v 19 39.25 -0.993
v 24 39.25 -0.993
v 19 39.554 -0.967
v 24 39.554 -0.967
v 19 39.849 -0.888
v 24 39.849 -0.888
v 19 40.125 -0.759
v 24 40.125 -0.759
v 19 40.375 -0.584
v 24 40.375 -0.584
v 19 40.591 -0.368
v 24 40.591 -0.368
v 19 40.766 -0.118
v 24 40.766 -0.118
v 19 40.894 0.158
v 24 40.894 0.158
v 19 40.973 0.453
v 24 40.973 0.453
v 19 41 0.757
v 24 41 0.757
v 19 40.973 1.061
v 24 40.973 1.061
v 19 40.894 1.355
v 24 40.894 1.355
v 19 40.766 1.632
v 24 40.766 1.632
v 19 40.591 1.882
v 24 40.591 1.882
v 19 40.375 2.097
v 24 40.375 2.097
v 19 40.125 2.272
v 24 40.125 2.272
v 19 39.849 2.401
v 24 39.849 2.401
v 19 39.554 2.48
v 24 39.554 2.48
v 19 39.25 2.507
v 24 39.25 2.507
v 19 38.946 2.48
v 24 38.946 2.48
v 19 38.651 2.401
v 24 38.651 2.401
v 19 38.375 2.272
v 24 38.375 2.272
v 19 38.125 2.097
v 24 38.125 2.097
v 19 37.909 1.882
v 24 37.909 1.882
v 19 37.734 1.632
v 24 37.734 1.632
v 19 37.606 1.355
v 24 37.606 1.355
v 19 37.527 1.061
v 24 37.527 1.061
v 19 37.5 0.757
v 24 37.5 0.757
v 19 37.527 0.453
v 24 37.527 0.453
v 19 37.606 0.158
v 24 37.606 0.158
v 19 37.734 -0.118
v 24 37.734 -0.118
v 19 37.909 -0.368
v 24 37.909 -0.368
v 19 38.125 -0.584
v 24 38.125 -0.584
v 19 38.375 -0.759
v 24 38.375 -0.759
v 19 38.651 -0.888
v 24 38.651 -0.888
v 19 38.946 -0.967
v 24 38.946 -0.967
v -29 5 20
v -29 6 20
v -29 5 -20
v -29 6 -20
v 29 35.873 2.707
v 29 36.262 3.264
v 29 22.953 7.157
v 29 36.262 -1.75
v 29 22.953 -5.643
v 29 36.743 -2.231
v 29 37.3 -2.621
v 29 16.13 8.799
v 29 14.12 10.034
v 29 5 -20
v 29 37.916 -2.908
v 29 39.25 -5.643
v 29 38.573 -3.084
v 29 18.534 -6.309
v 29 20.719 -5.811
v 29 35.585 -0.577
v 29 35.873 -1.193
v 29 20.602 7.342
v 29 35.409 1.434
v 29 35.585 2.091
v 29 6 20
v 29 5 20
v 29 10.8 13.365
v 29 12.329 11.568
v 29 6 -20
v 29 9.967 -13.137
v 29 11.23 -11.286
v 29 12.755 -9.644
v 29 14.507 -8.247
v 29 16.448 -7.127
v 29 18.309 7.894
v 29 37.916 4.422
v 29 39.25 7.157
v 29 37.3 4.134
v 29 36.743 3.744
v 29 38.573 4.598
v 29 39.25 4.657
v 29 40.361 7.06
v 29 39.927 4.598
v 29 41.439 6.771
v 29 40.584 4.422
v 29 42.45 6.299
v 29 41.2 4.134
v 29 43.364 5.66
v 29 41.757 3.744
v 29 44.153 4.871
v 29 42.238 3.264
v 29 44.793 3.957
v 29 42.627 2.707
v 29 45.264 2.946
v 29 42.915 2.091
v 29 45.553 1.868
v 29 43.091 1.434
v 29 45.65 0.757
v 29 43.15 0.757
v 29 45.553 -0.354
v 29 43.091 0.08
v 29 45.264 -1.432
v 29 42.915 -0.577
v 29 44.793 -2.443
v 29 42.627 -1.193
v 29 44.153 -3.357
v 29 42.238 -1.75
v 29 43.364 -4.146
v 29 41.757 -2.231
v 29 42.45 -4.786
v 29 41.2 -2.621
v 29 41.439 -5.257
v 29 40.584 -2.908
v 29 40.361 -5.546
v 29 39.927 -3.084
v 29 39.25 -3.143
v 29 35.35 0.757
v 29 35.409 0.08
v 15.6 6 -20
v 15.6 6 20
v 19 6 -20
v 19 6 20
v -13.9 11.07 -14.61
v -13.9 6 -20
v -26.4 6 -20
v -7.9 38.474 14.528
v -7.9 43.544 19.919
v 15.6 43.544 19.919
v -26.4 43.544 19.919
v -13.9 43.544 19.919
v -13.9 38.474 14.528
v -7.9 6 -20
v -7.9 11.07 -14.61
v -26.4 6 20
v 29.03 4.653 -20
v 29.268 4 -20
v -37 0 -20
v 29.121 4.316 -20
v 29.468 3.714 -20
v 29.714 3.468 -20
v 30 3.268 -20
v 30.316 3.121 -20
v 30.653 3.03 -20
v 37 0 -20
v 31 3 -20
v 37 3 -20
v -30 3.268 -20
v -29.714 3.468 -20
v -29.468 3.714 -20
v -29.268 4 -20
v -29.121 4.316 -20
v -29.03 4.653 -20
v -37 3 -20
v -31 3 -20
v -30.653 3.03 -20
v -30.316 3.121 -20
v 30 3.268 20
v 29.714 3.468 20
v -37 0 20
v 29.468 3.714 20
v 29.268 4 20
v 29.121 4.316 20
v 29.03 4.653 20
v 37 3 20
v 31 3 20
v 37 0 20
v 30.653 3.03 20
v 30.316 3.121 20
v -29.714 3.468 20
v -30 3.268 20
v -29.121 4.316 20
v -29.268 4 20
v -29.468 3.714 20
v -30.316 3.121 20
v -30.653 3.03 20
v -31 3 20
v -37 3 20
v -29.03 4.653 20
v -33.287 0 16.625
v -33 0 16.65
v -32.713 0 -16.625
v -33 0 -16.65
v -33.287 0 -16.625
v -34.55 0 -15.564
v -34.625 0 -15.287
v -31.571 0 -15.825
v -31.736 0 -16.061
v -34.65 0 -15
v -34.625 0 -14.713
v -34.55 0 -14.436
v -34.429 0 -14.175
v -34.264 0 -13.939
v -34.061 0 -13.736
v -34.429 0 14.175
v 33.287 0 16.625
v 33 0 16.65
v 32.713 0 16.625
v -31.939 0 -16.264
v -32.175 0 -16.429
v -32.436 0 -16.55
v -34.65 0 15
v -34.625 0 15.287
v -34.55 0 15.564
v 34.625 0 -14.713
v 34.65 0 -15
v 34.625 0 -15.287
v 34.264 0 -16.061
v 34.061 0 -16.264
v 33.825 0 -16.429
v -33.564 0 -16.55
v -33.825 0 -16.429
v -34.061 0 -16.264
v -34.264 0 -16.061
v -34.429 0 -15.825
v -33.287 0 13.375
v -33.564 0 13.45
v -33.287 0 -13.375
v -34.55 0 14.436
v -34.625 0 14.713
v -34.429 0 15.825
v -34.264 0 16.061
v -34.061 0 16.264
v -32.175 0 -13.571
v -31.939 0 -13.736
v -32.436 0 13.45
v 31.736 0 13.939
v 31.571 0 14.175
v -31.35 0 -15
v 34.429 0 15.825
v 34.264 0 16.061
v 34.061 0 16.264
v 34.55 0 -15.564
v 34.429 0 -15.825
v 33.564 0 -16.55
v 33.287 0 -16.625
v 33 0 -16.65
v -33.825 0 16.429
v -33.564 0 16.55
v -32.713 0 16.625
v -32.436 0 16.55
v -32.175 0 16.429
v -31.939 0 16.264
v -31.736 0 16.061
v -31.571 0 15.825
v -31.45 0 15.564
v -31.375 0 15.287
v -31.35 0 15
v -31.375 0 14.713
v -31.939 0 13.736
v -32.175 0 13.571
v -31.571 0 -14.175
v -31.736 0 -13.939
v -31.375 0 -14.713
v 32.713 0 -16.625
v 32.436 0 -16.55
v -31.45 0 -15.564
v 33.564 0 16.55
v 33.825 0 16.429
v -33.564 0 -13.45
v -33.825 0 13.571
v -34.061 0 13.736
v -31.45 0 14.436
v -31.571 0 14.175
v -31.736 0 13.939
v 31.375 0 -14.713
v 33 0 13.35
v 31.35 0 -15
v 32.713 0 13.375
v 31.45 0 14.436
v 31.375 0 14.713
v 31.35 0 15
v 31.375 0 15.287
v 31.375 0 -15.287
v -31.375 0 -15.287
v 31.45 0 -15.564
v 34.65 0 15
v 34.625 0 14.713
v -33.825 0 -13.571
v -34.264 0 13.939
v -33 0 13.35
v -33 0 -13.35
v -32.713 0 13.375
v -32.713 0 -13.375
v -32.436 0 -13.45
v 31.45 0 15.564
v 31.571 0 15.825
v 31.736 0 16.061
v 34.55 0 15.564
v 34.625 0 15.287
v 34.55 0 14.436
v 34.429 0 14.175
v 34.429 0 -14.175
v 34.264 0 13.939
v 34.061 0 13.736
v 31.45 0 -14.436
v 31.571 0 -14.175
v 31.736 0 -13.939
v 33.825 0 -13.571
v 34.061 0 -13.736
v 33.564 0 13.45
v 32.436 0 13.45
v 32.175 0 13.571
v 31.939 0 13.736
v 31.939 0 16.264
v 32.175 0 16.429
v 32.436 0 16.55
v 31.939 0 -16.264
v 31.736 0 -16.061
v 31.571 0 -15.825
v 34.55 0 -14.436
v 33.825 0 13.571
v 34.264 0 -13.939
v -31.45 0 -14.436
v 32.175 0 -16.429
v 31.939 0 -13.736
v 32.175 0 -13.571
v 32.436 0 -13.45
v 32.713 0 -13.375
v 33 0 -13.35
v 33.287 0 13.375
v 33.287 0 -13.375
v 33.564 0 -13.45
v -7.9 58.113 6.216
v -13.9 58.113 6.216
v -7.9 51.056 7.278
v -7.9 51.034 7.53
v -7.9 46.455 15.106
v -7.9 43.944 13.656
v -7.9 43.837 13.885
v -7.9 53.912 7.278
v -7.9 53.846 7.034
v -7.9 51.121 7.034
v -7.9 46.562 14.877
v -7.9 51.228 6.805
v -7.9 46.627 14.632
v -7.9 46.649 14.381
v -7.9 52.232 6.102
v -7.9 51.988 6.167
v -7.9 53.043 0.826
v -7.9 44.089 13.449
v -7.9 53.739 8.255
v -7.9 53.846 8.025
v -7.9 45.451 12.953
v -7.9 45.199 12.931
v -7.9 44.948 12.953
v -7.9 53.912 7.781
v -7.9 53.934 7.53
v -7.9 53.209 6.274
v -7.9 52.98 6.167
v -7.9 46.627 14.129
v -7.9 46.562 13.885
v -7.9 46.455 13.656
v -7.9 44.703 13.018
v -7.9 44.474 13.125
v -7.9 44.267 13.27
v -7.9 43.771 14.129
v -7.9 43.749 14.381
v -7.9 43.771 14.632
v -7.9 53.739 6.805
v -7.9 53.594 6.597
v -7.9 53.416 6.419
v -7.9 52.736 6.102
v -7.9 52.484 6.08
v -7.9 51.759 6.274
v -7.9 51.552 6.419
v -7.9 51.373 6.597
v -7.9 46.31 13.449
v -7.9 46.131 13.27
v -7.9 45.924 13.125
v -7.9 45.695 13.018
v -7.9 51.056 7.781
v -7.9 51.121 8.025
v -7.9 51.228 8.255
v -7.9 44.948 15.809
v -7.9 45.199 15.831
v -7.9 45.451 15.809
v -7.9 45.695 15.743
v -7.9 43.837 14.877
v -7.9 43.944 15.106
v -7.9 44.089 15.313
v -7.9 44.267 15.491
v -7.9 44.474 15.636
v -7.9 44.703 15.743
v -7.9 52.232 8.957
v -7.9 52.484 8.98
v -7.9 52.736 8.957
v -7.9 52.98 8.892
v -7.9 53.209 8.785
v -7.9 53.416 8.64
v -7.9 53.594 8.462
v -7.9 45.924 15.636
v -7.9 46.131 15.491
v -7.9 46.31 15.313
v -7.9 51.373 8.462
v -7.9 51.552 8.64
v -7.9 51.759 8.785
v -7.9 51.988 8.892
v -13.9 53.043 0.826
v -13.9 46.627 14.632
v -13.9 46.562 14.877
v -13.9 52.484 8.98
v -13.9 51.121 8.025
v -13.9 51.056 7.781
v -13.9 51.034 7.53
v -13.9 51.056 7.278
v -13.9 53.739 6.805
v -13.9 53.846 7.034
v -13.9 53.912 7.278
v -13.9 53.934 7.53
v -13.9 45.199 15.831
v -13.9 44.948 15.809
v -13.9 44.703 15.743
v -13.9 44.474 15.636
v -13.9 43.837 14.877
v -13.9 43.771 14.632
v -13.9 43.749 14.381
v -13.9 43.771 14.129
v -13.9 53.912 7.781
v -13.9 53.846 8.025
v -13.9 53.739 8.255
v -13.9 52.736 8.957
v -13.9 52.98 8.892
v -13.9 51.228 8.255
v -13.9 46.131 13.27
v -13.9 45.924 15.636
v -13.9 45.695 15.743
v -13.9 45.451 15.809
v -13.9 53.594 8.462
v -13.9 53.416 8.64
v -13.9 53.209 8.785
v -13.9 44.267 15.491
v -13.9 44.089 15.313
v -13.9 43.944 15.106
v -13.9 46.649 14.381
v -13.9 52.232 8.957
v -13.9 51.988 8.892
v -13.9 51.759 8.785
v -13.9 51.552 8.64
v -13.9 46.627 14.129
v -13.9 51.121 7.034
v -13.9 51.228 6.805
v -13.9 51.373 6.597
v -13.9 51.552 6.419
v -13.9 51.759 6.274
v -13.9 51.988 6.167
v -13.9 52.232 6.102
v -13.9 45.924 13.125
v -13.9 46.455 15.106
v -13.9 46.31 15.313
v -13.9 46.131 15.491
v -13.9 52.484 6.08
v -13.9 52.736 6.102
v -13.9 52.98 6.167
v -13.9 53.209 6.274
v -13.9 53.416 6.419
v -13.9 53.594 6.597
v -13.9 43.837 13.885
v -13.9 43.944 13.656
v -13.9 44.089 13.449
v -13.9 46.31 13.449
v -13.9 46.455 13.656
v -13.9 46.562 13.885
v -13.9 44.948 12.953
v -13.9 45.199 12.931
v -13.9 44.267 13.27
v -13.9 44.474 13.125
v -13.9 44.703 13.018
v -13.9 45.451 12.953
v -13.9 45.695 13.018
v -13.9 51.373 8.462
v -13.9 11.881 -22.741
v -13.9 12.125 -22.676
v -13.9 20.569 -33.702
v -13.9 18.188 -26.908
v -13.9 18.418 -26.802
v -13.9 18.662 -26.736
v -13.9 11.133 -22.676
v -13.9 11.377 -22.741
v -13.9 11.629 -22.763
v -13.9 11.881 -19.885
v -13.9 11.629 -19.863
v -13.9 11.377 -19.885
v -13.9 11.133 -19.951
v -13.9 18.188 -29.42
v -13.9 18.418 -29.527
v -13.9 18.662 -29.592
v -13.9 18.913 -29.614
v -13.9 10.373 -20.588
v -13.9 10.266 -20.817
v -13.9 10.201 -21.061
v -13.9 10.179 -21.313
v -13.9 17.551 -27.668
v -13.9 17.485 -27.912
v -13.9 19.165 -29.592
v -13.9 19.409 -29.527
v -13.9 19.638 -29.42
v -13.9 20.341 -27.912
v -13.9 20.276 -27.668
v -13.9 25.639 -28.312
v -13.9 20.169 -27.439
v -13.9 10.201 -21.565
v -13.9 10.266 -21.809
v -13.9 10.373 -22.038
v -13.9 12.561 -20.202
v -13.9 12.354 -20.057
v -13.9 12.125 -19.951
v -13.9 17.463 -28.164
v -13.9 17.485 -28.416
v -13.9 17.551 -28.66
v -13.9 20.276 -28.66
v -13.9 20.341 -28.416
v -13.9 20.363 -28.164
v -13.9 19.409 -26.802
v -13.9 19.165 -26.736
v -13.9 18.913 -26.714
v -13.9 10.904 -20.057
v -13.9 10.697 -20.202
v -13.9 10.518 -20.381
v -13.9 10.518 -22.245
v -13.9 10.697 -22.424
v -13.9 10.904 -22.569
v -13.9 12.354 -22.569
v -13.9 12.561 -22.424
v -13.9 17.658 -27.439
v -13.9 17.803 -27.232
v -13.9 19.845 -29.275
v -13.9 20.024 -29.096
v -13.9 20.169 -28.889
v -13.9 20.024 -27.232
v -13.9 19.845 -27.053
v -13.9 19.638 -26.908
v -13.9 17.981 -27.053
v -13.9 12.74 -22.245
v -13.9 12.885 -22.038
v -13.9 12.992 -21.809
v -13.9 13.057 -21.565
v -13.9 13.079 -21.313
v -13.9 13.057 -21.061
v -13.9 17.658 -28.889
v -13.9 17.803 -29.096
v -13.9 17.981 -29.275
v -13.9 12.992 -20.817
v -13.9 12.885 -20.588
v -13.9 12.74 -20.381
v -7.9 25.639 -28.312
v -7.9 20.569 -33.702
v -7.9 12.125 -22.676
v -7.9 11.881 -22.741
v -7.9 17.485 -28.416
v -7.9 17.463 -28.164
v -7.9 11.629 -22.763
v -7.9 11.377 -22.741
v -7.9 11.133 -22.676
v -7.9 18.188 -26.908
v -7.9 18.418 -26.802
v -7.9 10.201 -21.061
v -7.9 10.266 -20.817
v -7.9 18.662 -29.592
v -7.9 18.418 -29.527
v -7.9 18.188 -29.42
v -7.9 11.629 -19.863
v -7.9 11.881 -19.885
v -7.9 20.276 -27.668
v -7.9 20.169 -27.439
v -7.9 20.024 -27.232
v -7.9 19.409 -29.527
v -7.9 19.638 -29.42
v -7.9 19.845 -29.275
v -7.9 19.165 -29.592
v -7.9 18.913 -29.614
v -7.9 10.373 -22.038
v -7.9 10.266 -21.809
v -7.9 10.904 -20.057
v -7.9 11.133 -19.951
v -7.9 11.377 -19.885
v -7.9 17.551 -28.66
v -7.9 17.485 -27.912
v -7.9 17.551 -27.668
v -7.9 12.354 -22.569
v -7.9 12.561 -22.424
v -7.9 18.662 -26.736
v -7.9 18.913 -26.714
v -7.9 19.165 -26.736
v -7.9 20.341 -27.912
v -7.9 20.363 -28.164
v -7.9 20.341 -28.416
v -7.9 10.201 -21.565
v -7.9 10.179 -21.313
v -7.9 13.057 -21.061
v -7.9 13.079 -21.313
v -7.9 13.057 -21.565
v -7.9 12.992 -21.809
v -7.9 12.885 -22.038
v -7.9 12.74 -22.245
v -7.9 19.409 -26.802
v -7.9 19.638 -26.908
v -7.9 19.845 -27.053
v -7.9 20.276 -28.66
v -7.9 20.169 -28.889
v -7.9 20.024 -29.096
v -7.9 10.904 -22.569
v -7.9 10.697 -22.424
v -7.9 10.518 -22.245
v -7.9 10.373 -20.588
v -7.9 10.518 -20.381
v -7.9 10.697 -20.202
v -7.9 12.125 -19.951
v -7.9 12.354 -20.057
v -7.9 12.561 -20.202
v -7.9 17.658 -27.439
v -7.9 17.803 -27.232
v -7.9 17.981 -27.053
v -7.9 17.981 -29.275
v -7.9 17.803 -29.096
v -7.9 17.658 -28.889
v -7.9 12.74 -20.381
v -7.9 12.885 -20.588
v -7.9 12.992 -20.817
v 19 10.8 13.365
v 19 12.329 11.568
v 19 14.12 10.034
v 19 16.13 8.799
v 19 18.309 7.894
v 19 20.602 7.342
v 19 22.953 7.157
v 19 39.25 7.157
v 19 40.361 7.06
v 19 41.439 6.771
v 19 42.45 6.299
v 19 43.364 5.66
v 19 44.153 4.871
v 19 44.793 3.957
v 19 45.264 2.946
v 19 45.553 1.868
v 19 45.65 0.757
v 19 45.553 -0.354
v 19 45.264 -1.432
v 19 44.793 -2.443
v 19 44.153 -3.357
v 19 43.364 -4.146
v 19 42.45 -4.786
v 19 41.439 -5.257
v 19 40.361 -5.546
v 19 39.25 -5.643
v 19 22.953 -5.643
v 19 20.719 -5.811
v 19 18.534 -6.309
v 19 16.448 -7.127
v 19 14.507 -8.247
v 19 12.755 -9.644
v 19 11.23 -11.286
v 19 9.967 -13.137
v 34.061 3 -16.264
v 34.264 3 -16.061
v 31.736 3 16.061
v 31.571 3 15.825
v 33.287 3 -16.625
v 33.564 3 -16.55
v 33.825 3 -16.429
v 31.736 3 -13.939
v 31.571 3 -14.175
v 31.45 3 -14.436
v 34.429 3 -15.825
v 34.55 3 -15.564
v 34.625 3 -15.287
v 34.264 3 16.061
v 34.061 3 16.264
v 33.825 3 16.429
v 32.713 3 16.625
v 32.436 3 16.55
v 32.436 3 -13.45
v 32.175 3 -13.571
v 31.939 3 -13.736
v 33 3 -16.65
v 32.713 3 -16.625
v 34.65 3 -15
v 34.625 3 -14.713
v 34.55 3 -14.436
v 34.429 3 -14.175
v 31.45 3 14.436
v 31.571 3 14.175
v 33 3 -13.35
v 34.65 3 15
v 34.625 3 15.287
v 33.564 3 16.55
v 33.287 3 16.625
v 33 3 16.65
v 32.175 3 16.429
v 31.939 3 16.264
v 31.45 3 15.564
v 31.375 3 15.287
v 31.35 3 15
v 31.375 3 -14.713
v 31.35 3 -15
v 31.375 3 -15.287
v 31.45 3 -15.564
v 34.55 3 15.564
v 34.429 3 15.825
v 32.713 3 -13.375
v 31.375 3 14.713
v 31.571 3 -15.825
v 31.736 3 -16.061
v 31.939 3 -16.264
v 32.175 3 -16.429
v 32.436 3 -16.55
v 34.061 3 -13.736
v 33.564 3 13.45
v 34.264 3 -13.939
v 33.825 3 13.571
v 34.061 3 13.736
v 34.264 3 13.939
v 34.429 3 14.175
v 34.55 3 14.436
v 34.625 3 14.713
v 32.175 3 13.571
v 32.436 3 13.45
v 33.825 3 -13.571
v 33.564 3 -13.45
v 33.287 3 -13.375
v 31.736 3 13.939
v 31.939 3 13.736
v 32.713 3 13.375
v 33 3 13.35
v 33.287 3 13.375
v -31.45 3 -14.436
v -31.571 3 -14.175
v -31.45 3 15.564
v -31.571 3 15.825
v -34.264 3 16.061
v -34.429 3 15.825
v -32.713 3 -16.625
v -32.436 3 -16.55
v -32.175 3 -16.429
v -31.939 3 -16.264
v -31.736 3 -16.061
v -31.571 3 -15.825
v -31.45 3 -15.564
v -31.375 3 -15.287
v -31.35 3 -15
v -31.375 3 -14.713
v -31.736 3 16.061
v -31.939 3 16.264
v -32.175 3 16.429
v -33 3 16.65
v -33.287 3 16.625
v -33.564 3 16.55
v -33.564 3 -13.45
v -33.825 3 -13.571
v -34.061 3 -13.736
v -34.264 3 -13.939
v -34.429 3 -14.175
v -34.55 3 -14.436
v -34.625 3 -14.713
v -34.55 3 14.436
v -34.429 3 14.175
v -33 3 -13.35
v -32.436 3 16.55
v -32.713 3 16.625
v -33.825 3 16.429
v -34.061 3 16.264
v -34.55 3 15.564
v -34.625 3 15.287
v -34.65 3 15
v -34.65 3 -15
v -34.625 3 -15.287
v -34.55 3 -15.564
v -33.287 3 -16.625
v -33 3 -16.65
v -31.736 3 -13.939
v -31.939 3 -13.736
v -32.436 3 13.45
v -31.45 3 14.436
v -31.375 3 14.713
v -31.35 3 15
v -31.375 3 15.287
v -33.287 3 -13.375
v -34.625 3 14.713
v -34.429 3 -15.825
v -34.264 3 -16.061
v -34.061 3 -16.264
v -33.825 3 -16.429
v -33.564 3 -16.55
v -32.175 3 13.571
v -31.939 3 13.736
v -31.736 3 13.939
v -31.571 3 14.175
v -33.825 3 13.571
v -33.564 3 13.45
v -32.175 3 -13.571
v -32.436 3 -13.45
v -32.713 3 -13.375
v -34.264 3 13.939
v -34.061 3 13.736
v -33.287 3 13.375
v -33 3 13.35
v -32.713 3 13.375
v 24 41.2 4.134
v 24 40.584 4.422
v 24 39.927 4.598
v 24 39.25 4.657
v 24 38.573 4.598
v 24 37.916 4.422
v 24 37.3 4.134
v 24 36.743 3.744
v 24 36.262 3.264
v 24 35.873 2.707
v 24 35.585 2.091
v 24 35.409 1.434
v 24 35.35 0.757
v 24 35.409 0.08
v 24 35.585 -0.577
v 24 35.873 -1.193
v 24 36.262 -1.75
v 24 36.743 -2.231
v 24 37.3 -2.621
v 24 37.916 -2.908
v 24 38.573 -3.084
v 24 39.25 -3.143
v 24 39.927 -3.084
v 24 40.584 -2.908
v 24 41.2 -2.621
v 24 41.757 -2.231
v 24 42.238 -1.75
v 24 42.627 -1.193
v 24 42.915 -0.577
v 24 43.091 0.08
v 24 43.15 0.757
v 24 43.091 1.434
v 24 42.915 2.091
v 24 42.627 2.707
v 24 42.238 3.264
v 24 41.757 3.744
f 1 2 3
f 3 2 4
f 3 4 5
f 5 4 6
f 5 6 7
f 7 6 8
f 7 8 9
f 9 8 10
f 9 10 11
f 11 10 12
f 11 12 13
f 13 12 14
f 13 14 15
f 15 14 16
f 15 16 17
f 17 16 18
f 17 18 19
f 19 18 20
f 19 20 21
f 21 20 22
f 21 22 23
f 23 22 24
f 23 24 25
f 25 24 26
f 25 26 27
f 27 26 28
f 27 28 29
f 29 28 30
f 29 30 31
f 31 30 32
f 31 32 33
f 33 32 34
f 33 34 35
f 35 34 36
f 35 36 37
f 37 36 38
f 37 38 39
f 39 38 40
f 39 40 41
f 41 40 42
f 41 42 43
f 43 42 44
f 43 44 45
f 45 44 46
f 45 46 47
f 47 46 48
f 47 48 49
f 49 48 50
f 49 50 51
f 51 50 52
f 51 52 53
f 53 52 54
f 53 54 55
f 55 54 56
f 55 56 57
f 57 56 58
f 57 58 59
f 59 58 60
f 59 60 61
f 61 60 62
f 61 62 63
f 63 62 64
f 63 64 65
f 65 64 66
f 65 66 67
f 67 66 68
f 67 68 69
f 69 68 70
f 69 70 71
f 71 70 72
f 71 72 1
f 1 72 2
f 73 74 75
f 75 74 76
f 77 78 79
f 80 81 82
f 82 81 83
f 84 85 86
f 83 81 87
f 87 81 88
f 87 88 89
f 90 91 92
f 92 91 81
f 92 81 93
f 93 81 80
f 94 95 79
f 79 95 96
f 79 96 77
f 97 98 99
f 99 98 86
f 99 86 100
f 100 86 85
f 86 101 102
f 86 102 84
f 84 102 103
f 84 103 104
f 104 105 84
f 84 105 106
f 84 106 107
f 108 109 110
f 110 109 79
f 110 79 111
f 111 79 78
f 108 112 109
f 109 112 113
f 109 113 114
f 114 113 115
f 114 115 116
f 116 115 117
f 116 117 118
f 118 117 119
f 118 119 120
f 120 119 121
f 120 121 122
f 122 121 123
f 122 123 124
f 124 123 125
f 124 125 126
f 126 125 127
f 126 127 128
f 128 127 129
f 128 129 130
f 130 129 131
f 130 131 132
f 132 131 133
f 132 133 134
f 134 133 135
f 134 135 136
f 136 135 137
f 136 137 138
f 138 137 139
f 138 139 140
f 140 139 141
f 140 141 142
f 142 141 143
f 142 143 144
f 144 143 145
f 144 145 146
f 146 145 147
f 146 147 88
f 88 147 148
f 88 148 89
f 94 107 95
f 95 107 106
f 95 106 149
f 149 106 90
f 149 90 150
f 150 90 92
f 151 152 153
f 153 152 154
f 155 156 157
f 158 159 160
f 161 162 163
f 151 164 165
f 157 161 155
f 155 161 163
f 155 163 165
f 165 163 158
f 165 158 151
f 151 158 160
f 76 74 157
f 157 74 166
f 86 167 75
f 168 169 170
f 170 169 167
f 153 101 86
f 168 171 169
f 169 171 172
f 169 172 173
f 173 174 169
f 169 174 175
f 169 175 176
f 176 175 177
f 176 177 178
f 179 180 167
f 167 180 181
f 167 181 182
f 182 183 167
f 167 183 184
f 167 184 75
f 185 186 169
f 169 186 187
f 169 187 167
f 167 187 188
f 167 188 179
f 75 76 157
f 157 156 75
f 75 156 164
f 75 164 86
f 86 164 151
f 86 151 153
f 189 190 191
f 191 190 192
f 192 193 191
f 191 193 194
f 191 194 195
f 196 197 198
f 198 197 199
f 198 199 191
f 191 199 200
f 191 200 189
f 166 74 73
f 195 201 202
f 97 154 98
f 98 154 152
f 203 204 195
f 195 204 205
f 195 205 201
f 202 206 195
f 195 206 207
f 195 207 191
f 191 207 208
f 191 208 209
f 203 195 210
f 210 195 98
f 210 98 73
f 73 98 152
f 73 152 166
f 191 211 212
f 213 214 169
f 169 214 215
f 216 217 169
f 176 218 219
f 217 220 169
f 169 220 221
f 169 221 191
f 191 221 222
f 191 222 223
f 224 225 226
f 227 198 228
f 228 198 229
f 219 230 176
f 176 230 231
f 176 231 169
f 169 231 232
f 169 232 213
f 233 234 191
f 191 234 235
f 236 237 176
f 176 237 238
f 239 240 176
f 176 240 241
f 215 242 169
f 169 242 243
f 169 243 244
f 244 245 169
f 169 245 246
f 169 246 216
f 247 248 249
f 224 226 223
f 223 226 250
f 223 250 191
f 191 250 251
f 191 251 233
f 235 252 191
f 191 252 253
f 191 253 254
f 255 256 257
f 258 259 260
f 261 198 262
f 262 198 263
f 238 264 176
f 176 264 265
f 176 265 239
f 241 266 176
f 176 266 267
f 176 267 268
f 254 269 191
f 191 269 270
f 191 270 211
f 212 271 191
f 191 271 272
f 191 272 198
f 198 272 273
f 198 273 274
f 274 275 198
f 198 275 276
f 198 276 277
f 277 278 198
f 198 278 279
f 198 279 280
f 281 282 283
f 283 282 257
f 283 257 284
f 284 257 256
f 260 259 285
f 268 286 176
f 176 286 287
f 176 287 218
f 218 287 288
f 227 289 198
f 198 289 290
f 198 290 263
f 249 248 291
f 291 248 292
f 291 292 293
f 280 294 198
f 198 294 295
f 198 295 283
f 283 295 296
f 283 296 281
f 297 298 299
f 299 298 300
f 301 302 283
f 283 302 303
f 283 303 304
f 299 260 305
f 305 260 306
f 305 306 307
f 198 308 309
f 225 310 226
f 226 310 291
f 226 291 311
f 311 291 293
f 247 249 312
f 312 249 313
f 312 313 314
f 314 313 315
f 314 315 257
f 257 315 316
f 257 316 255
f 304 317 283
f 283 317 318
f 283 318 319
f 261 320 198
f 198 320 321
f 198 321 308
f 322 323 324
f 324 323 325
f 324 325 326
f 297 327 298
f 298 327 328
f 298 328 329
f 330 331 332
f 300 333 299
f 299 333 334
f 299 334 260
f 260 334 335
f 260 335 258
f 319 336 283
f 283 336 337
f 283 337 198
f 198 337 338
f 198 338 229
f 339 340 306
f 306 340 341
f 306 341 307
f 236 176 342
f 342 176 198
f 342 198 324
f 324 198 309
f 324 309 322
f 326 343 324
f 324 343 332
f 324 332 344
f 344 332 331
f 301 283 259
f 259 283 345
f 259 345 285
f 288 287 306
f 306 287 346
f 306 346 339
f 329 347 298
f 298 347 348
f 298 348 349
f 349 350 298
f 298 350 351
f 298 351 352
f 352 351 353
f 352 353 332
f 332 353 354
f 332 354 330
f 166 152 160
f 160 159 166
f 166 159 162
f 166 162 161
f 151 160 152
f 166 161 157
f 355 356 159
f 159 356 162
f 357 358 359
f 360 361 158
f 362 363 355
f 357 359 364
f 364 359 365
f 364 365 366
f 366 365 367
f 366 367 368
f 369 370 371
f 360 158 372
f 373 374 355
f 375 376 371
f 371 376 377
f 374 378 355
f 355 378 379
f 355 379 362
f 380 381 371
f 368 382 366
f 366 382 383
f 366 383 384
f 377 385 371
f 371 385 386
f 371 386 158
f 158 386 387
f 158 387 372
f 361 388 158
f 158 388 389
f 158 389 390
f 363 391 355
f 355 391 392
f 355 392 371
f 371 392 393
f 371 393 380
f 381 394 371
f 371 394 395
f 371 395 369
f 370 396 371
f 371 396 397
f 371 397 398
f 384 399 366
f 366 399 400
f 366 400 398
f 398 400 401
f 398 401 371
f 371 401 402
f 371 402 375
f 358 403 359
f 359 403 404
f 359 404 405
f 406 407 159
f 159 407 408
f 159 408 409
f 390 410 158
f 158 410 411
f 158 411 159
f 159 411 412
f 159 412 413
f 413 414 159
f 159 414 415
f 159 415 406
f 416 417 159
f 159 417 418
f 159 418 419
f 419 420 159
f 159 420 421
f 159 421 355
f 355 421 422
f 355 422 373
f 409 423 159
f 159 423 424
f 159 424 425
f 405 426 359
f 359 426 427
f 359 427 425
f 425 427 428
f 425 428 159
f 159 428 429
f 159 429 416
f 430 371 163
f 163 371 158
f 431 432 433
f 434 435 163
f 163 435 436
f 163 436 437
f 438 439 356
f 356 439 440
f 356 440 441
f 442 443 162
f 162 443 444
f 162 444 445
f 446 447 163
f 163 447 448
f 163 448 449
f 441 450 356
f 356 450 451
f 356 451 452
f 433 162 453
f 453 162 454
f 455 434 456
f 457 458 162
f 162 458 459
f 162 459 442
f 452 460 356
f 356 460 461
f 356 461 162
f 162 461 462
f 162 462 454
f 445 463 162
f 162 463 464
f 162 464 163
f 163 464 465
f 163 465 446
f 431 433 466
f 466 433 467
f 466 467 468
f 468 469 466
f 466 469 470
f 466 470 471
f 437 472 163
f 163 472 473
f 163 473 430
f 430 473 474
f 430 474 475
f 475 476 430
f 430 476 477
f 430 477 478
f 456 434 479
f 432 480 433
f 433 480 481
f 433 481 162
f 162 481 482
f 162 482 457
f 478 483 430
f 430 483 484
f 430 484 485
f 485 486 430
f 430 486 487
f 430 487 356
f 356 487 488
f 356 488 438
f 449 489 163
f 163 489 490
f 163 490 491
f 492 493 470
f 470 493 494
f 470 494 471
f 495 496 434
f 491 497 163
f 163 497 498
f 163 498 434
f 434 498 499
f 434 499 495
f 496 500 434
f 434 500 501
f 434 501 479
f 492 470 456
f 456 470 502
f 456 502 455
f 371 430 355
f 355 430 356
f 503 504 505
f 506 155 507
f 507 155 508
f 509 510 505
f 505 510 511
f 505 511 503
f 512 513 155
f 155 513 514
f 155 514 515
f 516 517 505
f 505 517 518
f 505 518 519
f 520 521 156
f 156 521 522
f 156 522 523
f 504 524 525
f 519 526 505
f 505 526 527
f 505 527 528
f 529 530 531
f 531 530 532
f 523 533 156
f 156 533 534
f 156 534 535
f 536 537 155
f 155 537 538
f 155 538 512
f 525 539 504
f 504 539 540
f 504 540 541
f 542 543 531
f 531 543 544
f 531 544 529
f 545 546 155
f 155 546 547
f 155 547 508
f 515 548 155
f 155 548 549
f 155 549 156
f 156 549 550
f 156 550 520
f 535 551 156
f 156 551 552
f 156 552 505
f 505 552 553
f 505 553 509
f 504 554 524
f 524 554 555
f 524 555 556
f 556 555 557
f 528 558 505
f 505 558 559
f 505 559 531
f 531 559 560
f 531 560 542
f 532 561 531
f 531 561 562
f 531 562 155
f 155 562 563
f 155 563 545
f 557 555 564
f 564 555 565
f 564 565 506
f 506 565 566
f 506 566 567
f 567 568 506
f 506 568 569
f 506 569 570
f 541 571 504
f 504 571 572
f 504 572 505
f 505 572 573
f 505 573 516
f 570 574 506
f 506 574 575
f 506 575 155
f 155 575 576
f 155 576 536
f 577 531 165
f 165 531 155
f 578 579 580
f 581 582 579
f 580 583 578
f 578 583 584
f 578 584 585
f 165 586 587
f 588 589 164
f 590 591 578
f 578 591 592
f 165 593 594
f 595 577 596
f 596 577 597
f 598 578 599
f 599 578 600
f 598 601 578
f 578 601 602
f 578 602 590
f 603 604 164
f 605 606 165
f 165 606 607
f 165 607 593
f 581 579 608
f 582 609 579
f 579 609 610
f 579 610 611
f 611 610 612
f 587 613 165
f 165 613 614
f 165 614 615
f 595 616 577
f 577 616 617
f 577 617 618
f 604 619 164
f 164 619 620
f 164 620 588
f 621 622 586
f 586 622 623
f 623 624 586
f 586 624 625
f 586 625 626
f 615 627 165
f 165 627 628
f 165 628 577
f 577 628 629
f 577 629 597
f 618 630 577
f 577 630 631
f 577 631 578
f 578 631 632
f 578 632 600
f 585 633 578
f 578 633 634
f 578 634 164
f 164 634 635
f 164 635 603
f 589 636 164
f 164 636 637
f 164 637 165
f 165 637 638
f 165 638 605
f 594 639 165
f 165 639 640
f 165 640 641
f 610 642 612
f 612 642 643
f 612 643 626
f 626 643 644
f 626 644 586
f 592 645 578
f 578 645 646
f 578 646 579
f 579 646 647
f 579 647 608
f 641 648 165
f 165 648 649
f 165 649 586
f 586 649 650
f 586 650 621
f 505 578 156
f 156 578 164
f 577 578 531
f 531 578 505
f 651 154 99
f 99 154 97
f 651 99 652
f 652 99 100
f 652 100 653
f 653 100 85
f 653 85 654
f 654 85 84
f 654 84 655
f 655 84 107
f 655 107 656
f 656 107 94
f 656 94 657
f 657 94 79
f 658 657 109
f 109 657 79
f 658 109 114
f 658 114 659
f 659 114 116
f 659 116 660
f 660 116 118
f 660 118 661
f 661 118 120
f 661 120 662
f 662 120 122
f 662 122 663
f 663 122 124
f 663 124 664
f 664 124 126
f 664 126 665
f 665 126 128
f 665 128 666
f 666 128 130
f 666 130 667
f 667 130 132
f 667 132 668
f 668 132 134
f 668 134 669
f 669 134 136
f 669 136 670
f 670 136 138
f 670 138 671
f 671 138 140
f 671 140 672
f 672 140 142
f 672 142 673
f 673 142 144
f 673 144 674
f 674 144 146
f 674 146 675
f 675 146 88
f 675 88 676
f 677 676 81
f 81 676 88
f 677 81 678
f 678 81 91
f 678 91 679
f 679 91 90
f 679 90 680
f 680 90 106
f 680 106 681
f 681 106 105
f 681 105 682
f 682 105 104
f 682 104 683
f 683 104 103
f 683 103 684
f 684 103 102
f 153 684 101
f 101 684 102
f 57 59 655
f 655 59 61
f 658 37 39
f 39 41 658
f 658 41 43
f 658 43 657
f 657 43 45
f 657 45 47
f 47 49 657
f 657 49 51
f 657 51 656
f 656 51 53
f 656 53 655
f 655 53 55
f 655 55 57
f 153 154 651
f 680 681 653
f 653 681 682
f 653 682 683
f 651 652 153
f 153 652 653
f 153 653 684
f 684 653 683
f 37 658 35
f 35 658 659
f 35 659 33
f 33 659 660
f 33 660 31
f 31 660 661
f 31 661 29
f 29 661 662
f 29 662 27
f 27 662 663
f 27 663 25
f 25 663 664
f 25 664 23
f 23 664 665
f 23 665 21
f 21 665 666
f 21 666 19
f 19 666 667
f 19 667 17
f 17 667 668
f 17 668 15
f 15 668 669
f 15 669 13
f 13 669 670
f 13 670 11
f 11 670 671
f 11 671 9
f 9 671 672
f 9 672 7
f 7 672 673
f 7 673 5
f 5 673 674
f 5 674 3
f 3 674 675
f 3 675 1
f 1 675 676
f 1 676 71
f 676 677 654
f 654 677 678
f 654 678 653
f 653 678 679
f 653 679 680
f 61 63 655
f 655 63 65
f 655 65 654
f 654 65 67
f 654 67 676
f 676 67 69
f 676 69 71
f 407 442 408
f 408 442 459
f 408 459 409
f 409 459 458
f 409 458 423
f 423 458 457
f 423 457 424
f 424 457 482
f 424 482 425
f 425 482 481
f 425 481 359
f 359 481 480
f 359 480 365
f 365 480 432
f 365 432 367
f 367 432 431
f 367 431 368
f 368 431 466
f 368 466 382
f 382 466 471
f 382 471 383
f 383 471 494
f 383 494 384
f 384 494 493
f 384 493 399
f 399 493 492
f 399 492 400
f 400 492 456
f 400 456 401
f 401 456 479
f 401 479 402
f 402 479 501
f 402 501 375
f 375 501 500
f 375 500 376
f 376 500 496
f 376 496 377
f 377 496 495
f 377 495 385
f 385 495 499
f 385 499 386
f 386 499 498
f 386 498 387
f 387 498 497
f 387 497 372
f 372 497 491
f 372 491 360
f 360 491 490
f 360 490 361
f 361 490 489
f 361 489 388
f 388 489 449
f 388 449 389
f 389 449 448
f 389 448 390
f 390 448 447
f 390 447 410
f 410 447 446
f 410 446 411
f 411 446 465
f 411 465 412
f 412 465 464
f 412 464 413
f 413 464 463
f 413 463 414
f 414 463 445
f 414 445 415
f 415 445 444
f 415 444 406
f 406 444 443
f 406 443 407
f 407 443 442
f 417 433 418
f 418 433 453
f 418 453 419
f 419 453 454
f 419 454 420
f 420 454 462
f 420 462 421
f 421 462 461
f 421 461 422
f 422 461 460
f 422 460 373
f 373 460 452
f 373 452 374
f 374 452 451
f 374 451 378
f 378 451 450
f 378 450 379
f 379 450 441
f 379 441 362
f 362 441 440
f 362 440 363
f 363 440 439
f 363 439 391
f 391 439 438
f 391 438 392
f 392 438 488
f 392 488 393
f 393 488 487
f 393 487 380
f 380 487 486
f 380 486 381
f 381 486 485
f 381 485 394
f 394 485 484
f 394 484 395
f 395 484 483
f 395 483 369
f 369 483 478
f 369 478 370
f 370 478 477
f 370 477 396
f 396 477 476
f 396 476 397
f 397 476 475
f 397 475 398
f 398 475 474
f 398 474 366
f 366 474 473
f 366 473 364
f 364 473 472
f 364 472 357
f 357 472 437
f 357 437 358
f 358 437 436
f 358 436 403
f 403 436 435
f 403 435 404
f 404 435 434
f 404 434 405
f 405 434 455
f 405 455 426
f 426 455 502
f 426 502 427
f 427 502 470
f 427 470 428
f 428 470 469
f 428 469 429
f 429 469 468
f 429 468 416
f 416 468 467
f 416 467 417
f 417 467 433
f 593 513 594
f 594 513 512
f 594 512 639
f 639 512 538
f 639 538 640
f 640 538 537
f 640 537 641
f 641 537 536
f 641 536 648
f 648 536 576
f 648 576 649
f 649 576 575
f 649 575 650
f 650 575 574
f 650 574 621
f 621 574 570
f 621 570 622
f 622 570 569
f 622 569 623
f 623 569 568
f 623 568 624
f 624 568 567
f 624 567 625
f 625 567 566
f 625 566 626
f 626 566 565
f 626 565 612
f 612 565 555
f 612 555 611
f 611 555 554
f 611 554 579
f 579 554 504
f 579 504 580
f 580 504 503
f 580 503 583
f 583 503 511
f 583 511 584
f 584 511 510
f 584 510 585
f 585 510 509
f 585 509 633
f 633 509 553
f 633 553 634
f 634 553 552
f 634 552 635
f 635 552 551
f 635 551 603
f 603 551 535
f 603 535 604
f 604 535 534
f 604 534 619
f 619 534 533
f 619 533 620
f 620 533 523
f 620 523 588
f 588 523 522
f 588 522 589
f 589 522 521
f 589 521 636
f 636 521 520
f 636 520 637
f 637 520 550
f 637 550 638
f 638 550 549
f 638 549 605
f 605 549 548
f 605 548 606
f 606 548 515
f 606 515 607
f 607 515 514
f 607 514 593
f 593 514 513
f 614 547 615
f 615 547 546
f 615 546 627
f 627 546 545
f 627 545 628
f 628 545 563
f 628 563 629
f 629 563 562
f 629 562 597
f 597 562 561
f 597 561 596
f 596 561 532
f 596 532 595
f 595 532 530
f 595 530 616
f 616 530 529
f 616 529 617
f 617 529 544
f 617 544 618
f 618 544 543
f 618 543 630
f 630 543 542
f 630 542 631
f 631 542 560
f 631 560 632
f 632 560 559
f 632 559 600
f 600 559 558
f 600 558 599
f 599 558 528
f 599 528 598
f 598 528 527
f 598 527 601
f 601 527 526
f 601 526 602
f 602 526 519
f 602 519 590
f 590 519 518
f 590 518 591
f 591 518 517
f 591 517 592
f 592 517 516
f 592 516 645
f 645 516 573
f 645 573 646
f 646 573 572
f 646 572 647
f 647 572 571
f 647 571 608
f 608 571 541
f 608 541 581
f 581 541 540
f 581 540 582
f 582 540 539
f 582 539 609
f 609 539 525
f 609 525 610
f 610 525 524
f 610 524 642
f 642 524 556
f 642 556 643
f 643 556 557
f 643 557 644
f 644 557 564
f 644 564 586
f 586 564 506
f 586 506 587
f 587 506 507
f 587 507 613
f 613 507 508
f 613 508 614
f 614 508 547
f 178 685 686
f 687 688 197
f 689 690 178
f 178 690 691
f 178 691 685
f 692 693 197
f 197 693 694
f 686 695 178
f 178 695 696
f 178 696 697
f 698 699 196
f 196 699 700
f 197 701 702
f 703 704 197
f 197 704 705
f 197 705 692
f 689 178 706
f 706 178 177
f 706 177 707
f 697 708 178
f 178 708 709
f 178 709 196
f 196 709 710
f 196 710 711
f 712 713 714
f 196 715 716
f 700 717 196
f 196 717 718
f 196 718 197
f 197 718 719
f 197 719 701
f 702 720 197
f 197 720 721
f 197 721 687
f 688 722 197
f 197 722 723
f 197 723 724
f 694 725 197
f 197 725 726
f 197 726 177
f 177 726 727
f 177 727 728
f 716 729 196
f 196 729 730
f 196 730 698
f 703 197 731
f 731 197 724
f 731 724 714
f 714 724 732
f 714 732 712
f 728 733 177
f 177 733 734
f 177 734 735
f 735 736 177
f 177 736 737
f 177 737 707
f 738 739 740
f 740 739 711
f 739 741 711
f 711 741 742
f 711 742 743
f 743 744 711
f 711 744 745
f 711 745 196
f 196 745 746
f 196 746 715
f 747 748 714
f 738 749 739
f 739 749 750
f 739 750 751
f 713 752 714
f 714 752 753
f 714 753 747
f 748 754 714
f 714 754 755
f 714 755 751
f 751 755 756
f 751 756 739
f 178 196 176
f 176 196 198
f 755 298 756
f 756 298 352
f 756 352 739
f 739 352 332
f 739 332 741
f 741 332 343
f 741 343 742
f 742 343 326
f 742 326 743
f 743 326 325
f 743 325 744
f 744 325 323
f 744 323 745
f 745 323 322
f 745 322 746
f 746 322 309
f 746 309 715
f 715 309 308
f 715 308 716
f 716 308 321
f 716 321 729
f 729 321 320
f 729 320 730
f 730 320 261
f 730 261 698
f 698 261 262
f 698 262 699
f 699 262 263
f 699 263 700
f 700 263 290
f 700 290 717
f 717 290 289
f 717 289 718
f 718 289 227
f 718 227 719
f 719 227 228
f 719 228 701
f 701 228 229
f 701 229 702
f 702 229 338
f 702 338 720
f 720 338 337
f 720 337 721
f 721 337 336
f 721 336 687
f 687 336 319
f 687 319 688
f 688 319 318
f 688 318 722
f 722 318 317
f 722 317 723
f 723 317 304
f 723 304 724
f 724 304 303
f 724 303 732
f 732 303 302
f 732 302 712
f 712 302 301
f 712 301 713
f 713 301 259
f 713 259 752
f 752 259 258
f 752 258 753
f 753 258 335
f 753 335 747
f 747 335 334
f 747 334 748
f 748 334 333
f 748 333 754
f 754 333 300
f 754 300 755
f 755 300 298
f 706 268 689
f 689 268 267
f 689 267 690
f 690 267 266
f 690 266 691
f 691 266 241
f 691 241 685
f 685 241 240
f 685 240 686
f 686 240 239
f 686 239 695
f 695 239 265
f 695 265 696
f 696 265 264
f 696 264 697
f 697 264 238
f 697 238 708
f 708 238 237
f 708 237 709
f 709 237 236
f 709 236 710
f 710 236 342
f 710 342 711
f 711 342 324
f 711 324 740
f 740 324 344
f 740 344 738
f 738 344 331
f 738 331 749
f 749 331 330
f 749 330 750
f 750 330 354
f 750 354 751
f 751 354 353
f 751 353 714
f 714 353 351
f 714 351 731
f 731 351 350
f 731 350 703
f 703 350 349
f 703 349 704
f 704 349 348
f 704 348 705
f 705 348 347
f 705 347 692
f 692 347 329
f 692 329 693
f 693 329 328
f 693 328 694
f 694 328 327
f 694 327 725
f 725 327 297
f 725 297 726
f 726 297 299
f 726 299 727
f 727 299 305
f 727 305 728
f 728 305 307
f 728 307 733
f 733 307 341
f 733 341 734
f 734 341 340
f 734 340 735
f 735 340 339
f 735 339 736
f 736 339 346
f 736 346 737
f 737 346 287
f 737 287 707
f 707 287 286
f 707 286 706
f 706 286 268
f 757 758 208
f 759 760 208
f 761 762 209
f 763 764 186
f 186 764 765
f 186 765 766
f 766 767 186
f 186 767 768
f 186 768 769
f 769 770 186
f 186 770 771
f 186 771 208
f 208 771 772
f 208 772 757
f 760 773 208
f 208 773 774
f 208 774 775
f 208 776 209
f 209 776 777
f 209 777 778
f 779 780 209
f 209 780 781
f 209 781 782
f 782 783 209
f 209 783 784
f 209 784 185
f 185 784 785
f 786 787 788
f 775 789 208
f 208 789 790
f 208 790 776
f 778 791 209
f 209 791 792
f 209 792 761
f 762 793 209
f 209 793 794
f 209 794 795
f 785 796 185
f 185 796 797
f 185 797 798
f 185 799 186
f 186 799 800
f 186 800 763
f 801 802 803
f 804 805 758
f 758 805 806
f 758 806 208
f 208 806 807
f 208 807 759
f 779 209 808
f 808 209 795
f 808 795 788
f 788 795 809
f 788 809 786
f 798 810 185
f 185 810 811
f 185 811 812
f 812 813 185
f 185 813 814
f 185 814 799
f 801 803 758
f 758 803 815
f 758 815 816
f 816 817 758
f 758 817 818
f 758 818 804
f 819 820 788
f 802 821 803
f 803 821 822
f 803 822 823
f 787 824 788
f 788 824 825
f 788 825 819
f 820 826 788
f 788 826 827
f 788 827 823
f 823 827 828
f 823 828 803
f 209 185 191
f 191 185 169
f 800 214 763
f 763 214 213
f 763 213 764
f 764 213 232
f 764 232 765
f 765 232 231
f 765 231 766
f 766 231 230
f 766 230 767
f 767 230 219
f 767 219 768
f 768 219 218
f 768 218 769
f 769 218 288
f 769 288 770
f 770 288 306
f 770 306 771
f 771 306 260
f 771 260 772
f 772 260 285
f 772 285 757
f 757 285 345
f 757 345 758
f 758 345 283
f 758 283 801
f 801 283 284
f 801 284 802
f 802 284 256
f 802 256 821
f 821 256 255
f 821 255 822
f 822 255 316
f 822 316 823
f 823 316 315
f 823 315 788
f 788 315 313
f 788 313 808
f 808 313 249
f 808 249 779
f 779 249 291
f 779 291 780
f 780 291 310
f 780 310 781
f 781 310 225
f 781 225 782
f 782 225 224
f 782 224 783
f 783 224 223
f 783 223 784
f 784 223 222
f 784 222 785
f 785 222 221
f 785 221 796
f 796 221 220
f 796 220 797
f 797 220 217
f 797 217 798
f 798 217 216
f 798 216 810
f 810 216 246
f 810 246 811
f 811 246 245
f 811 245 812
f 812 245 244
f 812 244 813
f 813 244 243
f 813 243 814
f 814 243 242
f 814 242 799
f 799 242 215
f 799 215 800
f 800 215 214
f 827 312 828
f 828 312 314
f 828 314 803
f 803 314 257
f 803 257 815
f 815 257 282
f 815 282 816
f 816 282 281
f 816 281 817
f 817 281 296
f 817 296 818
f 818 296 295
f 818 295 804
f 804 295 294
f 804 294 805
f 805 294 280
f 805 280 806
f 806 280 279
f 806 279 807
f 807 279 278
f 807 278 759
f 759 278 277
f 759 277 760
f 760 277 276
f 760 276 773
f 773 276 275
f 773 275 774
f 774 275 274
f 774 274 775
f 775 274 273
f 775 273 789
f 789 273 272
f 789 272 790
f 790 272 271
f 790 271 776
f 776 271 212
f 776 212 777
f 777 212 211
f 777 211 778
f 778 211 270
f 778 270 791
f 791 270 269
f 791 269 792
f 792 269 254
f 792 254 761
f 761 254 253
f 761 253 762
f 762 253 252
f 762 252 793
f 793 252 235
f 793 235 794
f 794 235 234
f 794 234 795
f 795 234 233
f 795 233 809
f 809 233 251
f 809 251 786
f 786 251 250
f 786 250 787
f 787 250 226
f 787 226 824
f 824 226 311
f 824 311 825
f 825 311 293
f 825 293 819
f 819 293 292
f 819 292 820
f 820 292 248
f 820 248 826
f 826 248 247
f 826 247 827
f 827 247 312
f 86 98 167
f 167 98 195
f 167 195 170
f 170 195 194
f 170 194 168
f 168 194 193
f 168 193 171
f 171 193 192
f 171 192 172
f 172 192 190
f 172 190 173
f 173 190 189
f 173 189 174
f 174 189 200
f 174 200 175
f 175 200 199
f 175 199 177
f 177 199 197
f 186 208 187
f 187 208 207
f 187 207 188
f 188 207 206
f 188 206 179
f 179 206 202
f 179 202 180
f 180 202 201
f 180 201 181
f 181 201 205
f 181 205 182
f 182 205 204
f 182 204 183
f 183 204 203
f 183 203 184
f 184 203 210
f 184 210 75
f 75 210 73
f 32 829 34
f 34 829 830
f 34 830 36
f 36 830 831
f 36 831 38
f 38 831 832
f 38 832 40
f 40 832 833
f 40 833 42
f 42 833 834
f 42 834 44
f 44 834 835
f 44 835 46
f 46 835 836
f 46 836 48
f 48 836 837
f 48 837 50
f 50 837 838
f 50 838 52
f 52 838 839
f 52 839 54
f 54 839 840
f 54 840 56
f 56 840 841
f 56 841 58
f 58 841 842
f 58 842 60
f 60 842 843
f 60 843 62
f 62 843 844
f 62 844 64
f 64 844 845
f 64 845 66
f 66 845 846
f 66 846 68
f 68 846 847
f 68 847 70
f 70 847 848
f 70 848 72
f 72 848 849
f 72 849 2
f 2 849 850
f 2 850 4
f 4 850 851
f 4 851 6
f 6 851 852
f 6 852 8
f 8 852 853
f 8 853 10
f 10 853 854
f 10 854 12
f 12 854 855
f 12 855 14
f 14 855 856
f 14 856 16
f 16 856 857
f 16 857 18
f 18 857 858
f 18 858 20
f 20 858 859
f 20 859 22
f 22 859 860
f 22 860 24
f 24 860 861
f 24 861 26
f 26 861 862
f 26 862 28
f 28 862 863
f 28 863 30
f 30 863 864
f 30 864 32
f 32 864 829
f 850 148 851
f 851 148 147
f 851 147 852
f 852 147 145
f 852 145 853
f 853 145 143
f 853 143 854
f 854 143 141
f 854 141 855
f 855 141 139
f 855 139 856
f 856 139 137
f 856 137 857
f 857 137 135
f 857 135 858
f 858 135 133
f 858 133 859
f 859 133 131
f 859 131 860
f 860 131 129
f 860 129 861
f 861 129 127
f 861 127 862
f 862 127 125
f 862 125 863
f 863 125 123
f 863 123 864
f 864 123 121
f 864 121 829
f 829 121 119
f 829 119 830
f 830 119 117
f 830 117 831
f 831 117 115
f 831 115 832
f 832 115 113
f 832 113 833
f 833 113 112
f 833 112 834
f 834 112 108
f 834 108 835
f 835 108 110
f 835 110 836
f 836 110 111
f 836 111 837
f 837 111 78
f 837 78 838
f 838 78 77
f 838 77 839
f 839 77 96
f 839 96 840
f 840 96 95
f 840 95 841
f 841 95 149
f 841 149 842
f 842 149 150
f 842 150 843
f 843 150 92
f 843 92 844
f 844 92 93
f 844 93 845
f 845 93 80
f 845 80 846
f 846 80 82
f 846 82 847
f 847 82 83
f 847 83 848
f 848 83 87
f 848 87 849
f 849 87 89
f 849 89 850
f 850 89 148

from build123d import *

# Parameters (mm, degrees)
SKETCH1_W              = 58
SKETCH1_H              = 40
BOSS_EXTRUDE1_DEPTH    = 6
BOSS_EXTRUDE3_START    = -2.6
BOSS_EXTRUDE3_DEPTH    = 42
SKETCH6_W              = 6
SKETCH6_H              = 7.4
BOSS_EXTRUDE4_DEPTH    = 20
BOSS_EXTRUDE5_DEPTH    = 10
M2_5_CLEARANCE_SLOT1_D = 2.9
SKETCH11_R             = 1.75
CUT_EXTRUDE1_DEPTH     = 10
SKETCH12_W             = 8
SKETCH12_H             = 40
SKETCH12_R             = 1.65
BOSS_EXTRUDE6_DEPTH    = 3
FILLET1_R              = 2
SKETCH8_R              = 3.9
CUT_EXTRUDE2_DEPTH     = 5


with BuildPart() as part:
    # Sketch1 → Boss-Extrude1 (new body)
    with BuildSketch(Plane(origin=(0, 0, 0), x_dir=(1, 0, 0), z_dir=(0, 1, 0))):
        Rectangle(SKETCH1_W, SKETCH1_H)
    extrude(amount=BOSS_EXTRUDE1_DEPTH)

    # Sketch4 → Boss-Extrude3 (add)
    with BuildSketch(Plane.ZY.offset(29).offset(BOSS_EXTRUDE3_START)):
        Polygon((-20, 6), (19.918609503, 43.543902506), (20, 6), align=None)
    extrude(amount=-BOSS_EXTRUDE3_DEPTH)

    # Sketch6 → Boss-Extrude4 (add)
    with BuildSketch(Plane(origin=(0, 13.164986139, -12.38181796), x_dir=(1, 0, 0), z_dir=(0, 0.728441779, -0.68510771))):
        with Locations((-10.9, -40.641810675)):
            Rectangle(SKETCH6_W, SKETCH6_H)
        with Locations((-10.9, 6.758189325)):
            Rectangle(SKETCH6_W, SKETCH6_H)
    extrude(amount=BOSS_EXTRUDE4_DEPTH)

    # Sketch7 → Boss-Extrude5 (add)
    with BuildSketch(Plane(origin=(29, 0, 0), x_dir=(0, 0, -1), z_dir=(1, 0, 0))):
        with BuildLine():
            Line((-20, 6), (-13.364634961, 10.800412746))
            ThreePointArc((-13.364634961, 10.800412746), (-8.798657798, 16.130102837), (-7.156866334, 22.953464523))
            Line((-7.156866334, 22.953464523), (-7.156866334, 39.25))
            ThreePointArc((-7.156866334, 39.25), (-0.756866334, 45.65), (5.643133666, 39.25))
            Line((5.643133666, 39.25), (5.643133666, 22.953464523))
            ThreePointArc((5.643133666, 22.953464523), (7.651002835, 15.456496038), (13.137071863, 9.966585137))
            Line((13.137071863, 9.966585137), (20, 6))
            Line((20, 6), (-20, 6))
        make_face()
    extrude(amount=-BOSS_EXTRUDE5_DEPTH)

    # M2.5 Clearance Slot1 (through all)
    with Locations(Plane(origin=(-16.9, -75.052586312, -128.704072023), x_dir=(0, -0.380749805, 0.924678098), z_dir=(-1, 0, 0))):
        with Locations((57.189532403, 125.168887287), (66.298114004, 121.041691966), (77.412789478, 169.800937131), (86.521371079, 165.67374181)):
            Hole(M2_5_CLEARANCE_SLOT1_D / 2)

    # Sketch11 → Cut-Extrude1 (cut)
    with BuildSketch(Plane(origin=(29, 0, 0), x_dir=(0, 0, -1), z_dir=(1, 0, 0))):
        with Locations((-0.756866334, 39.25)):
            Circle(SKETCH11_R)
    extrude(amount=-CUT_EXTRUDE1_DEPTH, mode=Mode.SUBTRACT)

    # Sketch12 → Boss-Extrude6 (add)
    with BuildSketch(Plane(origin=(0, 0, 0), x_dir=(1, 0, 0), z_dir=(0, 1, 0))):
        with Locations((33, 0)):
            Rectangle(SKETCH12_W, SKETCH12_H)
        with Locations((33, -15)):
            Circle(SKETCH12_R, mode=Mode.SUBTRACT)
        with Locations((33, 15)):
            Circle(SKETCH12_R, mode=Mode.SUBTRACT)
        with Locations((-33, 0)):
            Rectangle(SKETCH12_W, SKETCH12_H)
        with Locations((-33, 15)):
            Circle(SKETCH12_R, mode=Mode.SUBTRACT)
        with Locations((-33, -15)):
            Circle(SKETCH12_R, mode=Mode.SUBTRACT)
    extrude(amount=BOSS_EXTRUDE6_DEPTH)

    # Fillet1
    fillet1_edges = [part.edges().sort_by_distance(p)[0] for p in [
        (29, 3, 0),
        (-29, 3, 0),
    ]]
    fillet(fillet1_edges, radius=FILLET1_R)

    # Sketch8 → Cut-Extrude2 (cut)
    with BuildSketch(Plane(origin=(29, 0, 0), x_dir=(0, 0, -1), z_dir=(1, 0, 0))):
        with Locations((-0.756866334, 39.25)):
            Circle(SKETCH8_R)
    extrude(amount=-CUT_EXTRUDE2_DEPTH, mode=Mode.SUBTRACT)


solid = part.part
